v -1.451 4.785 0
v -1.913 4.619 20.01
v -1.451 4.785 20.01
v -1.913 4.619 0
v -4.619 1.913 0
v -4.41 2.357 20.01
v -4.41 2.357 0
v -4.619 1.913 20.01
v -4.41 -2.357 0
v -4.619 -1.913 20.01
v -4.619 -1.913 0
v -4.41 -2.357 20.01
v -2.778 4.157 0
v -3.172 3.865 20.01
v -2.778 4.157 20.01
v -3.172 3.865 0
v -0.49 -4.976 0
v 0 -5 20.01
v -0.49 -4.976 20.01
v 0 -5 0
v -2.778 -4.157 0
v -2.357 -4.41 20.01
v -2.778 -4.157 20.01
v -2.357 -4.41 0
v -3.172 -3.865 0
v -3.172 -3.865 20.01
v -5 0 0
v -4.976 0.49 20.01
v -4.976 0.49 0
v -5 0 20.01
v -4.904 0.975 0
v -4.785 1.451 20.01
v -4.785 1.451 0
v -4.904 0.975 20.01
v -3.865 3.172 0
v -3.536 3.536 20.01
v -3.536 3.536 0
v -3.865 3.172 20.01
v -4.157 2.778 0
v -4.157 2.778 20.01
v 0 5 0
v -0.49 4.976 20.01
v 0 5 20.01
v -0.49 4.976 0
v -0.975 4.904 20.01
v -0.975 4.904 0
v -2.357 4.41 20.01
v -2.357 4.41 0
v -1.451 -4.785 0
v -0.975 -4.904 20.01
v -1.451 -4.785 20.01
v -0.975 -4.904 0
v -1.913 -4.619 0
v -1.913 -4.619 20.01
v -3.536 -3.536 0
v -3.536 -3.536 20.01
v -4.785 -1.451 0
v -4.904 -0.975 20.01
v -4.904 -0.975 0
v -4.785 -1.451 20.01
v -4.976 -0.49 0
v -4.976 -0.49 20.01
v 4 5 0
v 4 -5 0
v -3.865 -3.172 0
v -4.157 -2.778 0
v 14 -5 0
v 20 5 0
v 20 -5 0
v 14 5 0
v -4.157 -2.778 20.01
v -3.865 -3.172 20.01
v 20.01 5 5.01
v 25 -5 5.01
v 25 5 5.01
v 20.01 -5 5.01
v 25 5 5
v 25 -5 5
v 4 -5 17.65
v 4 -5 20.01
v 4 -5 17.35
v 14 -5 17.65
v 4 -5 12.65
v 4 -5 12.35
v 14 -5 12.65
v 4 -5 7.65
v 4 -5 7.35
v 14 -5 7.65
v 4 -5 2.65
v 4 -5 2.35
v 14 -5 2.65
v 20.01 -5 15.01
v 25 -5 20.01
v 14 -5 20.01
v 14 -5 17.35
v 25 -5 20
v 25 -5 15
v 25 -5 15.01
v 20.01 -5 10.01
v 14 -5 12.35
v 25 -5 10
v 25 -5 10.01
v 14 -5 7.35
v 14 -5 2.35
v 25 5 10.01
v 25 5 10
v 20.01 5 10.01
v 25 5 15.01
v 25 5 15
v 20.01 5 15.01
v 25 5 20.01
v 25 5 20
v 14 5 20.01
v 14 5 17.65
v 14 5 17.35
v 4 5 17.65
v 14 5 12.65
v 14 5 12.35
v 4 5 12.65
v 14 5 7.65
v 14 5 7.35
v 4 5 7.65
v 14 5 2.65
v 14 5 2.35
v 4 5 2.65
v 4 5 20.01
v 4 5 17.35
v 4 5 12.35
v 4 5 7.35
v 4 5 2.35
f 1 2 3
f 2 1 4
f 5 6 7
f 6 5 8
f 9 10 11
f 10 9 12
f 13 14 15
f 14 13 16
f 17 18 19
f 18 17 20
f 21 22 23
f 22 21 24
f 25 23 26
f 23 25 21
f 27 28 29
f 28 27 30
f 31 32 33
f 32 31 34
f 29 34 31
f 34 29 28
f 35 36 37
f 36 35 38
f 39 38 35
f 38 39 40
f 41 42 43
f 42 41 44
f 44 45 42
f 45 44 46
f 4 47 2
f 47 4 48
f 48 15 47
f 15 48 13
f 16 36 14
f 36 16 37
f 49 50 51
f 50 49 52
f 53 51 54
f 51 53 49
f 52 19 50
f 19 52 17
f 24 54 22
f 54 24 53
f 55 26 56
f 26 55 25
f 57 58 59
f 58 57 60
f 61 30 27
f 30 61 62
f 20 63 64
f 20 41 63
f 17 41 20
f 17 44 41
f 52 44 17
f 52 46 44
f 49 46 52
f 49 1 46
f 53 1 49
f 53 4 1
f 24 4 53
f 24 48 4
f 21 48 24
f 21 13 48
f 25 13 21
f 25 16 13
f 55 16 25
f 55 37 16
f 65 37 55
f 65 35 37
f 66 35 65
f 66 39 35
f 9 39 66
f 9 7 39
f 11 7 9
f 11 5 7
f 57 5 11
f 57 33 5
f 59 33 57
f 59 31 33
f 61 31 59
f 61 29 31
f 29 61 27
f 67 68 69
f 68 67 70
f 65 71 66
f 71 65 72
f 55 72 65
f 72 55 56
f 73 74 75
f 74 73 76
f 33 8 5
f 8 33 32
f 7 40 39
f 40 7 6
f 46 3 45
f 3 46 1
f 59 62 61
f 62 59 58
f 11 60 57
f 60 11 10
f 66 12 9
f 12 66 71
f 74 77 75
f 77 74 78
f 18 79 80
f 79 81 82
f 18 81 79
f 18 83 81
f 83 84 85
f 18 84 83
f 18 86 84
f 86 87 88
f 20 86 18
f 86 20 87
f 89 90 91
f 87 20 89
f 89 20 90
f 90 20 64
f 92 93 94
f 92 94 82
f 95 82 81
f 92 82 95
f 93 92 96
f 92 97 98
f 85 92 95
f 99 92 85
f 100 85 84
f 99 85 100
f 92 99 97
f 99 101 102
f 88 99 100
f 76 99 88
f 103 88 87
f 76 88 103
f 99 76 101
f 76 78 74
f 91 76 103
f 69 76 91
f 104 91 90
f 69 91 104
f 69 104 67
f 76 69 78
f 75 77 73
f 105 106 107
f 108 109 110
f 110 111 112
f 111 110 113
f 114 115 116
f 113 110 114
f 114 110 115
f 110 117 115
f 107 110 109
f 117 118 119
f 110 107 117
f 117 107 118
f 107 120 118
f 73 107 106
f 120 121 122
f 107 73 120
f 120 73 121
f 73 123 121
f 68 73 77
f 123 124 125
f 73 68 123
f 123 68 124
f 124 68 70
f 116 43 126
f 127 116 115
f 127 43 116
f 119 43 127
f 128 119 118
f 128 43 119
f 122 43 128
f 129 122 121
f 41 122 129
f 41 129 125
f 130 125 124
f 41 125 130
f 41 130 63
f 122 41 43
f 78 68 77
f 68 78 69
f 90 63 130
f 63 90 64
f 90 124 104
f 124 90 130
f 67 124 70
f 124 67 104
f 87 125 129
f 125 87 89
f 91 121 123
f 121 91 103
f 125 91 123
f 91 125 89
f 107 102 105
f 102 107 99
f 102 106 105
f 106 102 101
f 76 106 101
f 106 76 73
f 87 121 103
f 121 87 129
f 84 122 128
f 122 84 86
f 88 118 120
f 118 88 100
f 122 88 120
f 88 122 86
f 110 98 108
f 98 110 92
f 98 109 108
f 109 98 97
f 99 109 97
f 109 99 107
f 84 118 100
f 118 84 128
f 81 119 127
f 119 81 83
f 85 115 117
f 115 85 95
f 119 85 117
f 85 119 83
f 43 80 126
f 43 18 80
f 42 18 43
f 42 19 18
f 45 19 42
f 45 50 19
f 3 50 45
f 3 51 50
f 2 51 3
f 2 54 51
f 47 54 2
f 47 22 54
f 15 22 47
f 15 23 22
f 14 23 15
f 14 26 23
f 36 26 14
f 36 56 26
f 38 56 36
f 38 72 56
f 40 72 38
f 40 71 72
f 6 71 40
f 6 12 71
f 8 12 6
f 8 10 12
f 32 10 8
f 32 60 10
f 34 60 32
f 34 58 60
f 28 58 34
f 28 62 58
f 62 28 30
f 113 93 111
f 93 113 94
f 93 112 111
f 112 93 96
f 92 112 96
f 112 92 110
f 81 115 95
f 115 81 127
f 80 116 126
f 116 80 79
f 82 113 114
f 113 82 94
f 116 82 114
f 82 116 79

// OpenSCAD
$fn=64;

height = 5;
width = 10;
thickness = 0.3;  // bridge

eps=0.01;

module step(i) {
  translate([0, 0, i*height]) difference() {
    union() {
      cylinder(d=width, h=height+eps);
      translate([0, -width/2, 0]) cube([25, width, height+eps]);
    }

    translate([20, -width/2-eps, 0]) rotate([0, 45, 0]) cube([2*height, width+2*eps, 2*height]);
      
    translate([4, -width/2-eps, -eps]) cube([2*height, width+2*eps, (height-thickness)/2+eps]);
      
    translate([4, -width/2-eps, (height+thickness)/2]) cube([2*height, width+2*eps, (height-thickness)/2+2*eps]);
      
  }
}

step(0);
step(1);
step(2);
step(3);
